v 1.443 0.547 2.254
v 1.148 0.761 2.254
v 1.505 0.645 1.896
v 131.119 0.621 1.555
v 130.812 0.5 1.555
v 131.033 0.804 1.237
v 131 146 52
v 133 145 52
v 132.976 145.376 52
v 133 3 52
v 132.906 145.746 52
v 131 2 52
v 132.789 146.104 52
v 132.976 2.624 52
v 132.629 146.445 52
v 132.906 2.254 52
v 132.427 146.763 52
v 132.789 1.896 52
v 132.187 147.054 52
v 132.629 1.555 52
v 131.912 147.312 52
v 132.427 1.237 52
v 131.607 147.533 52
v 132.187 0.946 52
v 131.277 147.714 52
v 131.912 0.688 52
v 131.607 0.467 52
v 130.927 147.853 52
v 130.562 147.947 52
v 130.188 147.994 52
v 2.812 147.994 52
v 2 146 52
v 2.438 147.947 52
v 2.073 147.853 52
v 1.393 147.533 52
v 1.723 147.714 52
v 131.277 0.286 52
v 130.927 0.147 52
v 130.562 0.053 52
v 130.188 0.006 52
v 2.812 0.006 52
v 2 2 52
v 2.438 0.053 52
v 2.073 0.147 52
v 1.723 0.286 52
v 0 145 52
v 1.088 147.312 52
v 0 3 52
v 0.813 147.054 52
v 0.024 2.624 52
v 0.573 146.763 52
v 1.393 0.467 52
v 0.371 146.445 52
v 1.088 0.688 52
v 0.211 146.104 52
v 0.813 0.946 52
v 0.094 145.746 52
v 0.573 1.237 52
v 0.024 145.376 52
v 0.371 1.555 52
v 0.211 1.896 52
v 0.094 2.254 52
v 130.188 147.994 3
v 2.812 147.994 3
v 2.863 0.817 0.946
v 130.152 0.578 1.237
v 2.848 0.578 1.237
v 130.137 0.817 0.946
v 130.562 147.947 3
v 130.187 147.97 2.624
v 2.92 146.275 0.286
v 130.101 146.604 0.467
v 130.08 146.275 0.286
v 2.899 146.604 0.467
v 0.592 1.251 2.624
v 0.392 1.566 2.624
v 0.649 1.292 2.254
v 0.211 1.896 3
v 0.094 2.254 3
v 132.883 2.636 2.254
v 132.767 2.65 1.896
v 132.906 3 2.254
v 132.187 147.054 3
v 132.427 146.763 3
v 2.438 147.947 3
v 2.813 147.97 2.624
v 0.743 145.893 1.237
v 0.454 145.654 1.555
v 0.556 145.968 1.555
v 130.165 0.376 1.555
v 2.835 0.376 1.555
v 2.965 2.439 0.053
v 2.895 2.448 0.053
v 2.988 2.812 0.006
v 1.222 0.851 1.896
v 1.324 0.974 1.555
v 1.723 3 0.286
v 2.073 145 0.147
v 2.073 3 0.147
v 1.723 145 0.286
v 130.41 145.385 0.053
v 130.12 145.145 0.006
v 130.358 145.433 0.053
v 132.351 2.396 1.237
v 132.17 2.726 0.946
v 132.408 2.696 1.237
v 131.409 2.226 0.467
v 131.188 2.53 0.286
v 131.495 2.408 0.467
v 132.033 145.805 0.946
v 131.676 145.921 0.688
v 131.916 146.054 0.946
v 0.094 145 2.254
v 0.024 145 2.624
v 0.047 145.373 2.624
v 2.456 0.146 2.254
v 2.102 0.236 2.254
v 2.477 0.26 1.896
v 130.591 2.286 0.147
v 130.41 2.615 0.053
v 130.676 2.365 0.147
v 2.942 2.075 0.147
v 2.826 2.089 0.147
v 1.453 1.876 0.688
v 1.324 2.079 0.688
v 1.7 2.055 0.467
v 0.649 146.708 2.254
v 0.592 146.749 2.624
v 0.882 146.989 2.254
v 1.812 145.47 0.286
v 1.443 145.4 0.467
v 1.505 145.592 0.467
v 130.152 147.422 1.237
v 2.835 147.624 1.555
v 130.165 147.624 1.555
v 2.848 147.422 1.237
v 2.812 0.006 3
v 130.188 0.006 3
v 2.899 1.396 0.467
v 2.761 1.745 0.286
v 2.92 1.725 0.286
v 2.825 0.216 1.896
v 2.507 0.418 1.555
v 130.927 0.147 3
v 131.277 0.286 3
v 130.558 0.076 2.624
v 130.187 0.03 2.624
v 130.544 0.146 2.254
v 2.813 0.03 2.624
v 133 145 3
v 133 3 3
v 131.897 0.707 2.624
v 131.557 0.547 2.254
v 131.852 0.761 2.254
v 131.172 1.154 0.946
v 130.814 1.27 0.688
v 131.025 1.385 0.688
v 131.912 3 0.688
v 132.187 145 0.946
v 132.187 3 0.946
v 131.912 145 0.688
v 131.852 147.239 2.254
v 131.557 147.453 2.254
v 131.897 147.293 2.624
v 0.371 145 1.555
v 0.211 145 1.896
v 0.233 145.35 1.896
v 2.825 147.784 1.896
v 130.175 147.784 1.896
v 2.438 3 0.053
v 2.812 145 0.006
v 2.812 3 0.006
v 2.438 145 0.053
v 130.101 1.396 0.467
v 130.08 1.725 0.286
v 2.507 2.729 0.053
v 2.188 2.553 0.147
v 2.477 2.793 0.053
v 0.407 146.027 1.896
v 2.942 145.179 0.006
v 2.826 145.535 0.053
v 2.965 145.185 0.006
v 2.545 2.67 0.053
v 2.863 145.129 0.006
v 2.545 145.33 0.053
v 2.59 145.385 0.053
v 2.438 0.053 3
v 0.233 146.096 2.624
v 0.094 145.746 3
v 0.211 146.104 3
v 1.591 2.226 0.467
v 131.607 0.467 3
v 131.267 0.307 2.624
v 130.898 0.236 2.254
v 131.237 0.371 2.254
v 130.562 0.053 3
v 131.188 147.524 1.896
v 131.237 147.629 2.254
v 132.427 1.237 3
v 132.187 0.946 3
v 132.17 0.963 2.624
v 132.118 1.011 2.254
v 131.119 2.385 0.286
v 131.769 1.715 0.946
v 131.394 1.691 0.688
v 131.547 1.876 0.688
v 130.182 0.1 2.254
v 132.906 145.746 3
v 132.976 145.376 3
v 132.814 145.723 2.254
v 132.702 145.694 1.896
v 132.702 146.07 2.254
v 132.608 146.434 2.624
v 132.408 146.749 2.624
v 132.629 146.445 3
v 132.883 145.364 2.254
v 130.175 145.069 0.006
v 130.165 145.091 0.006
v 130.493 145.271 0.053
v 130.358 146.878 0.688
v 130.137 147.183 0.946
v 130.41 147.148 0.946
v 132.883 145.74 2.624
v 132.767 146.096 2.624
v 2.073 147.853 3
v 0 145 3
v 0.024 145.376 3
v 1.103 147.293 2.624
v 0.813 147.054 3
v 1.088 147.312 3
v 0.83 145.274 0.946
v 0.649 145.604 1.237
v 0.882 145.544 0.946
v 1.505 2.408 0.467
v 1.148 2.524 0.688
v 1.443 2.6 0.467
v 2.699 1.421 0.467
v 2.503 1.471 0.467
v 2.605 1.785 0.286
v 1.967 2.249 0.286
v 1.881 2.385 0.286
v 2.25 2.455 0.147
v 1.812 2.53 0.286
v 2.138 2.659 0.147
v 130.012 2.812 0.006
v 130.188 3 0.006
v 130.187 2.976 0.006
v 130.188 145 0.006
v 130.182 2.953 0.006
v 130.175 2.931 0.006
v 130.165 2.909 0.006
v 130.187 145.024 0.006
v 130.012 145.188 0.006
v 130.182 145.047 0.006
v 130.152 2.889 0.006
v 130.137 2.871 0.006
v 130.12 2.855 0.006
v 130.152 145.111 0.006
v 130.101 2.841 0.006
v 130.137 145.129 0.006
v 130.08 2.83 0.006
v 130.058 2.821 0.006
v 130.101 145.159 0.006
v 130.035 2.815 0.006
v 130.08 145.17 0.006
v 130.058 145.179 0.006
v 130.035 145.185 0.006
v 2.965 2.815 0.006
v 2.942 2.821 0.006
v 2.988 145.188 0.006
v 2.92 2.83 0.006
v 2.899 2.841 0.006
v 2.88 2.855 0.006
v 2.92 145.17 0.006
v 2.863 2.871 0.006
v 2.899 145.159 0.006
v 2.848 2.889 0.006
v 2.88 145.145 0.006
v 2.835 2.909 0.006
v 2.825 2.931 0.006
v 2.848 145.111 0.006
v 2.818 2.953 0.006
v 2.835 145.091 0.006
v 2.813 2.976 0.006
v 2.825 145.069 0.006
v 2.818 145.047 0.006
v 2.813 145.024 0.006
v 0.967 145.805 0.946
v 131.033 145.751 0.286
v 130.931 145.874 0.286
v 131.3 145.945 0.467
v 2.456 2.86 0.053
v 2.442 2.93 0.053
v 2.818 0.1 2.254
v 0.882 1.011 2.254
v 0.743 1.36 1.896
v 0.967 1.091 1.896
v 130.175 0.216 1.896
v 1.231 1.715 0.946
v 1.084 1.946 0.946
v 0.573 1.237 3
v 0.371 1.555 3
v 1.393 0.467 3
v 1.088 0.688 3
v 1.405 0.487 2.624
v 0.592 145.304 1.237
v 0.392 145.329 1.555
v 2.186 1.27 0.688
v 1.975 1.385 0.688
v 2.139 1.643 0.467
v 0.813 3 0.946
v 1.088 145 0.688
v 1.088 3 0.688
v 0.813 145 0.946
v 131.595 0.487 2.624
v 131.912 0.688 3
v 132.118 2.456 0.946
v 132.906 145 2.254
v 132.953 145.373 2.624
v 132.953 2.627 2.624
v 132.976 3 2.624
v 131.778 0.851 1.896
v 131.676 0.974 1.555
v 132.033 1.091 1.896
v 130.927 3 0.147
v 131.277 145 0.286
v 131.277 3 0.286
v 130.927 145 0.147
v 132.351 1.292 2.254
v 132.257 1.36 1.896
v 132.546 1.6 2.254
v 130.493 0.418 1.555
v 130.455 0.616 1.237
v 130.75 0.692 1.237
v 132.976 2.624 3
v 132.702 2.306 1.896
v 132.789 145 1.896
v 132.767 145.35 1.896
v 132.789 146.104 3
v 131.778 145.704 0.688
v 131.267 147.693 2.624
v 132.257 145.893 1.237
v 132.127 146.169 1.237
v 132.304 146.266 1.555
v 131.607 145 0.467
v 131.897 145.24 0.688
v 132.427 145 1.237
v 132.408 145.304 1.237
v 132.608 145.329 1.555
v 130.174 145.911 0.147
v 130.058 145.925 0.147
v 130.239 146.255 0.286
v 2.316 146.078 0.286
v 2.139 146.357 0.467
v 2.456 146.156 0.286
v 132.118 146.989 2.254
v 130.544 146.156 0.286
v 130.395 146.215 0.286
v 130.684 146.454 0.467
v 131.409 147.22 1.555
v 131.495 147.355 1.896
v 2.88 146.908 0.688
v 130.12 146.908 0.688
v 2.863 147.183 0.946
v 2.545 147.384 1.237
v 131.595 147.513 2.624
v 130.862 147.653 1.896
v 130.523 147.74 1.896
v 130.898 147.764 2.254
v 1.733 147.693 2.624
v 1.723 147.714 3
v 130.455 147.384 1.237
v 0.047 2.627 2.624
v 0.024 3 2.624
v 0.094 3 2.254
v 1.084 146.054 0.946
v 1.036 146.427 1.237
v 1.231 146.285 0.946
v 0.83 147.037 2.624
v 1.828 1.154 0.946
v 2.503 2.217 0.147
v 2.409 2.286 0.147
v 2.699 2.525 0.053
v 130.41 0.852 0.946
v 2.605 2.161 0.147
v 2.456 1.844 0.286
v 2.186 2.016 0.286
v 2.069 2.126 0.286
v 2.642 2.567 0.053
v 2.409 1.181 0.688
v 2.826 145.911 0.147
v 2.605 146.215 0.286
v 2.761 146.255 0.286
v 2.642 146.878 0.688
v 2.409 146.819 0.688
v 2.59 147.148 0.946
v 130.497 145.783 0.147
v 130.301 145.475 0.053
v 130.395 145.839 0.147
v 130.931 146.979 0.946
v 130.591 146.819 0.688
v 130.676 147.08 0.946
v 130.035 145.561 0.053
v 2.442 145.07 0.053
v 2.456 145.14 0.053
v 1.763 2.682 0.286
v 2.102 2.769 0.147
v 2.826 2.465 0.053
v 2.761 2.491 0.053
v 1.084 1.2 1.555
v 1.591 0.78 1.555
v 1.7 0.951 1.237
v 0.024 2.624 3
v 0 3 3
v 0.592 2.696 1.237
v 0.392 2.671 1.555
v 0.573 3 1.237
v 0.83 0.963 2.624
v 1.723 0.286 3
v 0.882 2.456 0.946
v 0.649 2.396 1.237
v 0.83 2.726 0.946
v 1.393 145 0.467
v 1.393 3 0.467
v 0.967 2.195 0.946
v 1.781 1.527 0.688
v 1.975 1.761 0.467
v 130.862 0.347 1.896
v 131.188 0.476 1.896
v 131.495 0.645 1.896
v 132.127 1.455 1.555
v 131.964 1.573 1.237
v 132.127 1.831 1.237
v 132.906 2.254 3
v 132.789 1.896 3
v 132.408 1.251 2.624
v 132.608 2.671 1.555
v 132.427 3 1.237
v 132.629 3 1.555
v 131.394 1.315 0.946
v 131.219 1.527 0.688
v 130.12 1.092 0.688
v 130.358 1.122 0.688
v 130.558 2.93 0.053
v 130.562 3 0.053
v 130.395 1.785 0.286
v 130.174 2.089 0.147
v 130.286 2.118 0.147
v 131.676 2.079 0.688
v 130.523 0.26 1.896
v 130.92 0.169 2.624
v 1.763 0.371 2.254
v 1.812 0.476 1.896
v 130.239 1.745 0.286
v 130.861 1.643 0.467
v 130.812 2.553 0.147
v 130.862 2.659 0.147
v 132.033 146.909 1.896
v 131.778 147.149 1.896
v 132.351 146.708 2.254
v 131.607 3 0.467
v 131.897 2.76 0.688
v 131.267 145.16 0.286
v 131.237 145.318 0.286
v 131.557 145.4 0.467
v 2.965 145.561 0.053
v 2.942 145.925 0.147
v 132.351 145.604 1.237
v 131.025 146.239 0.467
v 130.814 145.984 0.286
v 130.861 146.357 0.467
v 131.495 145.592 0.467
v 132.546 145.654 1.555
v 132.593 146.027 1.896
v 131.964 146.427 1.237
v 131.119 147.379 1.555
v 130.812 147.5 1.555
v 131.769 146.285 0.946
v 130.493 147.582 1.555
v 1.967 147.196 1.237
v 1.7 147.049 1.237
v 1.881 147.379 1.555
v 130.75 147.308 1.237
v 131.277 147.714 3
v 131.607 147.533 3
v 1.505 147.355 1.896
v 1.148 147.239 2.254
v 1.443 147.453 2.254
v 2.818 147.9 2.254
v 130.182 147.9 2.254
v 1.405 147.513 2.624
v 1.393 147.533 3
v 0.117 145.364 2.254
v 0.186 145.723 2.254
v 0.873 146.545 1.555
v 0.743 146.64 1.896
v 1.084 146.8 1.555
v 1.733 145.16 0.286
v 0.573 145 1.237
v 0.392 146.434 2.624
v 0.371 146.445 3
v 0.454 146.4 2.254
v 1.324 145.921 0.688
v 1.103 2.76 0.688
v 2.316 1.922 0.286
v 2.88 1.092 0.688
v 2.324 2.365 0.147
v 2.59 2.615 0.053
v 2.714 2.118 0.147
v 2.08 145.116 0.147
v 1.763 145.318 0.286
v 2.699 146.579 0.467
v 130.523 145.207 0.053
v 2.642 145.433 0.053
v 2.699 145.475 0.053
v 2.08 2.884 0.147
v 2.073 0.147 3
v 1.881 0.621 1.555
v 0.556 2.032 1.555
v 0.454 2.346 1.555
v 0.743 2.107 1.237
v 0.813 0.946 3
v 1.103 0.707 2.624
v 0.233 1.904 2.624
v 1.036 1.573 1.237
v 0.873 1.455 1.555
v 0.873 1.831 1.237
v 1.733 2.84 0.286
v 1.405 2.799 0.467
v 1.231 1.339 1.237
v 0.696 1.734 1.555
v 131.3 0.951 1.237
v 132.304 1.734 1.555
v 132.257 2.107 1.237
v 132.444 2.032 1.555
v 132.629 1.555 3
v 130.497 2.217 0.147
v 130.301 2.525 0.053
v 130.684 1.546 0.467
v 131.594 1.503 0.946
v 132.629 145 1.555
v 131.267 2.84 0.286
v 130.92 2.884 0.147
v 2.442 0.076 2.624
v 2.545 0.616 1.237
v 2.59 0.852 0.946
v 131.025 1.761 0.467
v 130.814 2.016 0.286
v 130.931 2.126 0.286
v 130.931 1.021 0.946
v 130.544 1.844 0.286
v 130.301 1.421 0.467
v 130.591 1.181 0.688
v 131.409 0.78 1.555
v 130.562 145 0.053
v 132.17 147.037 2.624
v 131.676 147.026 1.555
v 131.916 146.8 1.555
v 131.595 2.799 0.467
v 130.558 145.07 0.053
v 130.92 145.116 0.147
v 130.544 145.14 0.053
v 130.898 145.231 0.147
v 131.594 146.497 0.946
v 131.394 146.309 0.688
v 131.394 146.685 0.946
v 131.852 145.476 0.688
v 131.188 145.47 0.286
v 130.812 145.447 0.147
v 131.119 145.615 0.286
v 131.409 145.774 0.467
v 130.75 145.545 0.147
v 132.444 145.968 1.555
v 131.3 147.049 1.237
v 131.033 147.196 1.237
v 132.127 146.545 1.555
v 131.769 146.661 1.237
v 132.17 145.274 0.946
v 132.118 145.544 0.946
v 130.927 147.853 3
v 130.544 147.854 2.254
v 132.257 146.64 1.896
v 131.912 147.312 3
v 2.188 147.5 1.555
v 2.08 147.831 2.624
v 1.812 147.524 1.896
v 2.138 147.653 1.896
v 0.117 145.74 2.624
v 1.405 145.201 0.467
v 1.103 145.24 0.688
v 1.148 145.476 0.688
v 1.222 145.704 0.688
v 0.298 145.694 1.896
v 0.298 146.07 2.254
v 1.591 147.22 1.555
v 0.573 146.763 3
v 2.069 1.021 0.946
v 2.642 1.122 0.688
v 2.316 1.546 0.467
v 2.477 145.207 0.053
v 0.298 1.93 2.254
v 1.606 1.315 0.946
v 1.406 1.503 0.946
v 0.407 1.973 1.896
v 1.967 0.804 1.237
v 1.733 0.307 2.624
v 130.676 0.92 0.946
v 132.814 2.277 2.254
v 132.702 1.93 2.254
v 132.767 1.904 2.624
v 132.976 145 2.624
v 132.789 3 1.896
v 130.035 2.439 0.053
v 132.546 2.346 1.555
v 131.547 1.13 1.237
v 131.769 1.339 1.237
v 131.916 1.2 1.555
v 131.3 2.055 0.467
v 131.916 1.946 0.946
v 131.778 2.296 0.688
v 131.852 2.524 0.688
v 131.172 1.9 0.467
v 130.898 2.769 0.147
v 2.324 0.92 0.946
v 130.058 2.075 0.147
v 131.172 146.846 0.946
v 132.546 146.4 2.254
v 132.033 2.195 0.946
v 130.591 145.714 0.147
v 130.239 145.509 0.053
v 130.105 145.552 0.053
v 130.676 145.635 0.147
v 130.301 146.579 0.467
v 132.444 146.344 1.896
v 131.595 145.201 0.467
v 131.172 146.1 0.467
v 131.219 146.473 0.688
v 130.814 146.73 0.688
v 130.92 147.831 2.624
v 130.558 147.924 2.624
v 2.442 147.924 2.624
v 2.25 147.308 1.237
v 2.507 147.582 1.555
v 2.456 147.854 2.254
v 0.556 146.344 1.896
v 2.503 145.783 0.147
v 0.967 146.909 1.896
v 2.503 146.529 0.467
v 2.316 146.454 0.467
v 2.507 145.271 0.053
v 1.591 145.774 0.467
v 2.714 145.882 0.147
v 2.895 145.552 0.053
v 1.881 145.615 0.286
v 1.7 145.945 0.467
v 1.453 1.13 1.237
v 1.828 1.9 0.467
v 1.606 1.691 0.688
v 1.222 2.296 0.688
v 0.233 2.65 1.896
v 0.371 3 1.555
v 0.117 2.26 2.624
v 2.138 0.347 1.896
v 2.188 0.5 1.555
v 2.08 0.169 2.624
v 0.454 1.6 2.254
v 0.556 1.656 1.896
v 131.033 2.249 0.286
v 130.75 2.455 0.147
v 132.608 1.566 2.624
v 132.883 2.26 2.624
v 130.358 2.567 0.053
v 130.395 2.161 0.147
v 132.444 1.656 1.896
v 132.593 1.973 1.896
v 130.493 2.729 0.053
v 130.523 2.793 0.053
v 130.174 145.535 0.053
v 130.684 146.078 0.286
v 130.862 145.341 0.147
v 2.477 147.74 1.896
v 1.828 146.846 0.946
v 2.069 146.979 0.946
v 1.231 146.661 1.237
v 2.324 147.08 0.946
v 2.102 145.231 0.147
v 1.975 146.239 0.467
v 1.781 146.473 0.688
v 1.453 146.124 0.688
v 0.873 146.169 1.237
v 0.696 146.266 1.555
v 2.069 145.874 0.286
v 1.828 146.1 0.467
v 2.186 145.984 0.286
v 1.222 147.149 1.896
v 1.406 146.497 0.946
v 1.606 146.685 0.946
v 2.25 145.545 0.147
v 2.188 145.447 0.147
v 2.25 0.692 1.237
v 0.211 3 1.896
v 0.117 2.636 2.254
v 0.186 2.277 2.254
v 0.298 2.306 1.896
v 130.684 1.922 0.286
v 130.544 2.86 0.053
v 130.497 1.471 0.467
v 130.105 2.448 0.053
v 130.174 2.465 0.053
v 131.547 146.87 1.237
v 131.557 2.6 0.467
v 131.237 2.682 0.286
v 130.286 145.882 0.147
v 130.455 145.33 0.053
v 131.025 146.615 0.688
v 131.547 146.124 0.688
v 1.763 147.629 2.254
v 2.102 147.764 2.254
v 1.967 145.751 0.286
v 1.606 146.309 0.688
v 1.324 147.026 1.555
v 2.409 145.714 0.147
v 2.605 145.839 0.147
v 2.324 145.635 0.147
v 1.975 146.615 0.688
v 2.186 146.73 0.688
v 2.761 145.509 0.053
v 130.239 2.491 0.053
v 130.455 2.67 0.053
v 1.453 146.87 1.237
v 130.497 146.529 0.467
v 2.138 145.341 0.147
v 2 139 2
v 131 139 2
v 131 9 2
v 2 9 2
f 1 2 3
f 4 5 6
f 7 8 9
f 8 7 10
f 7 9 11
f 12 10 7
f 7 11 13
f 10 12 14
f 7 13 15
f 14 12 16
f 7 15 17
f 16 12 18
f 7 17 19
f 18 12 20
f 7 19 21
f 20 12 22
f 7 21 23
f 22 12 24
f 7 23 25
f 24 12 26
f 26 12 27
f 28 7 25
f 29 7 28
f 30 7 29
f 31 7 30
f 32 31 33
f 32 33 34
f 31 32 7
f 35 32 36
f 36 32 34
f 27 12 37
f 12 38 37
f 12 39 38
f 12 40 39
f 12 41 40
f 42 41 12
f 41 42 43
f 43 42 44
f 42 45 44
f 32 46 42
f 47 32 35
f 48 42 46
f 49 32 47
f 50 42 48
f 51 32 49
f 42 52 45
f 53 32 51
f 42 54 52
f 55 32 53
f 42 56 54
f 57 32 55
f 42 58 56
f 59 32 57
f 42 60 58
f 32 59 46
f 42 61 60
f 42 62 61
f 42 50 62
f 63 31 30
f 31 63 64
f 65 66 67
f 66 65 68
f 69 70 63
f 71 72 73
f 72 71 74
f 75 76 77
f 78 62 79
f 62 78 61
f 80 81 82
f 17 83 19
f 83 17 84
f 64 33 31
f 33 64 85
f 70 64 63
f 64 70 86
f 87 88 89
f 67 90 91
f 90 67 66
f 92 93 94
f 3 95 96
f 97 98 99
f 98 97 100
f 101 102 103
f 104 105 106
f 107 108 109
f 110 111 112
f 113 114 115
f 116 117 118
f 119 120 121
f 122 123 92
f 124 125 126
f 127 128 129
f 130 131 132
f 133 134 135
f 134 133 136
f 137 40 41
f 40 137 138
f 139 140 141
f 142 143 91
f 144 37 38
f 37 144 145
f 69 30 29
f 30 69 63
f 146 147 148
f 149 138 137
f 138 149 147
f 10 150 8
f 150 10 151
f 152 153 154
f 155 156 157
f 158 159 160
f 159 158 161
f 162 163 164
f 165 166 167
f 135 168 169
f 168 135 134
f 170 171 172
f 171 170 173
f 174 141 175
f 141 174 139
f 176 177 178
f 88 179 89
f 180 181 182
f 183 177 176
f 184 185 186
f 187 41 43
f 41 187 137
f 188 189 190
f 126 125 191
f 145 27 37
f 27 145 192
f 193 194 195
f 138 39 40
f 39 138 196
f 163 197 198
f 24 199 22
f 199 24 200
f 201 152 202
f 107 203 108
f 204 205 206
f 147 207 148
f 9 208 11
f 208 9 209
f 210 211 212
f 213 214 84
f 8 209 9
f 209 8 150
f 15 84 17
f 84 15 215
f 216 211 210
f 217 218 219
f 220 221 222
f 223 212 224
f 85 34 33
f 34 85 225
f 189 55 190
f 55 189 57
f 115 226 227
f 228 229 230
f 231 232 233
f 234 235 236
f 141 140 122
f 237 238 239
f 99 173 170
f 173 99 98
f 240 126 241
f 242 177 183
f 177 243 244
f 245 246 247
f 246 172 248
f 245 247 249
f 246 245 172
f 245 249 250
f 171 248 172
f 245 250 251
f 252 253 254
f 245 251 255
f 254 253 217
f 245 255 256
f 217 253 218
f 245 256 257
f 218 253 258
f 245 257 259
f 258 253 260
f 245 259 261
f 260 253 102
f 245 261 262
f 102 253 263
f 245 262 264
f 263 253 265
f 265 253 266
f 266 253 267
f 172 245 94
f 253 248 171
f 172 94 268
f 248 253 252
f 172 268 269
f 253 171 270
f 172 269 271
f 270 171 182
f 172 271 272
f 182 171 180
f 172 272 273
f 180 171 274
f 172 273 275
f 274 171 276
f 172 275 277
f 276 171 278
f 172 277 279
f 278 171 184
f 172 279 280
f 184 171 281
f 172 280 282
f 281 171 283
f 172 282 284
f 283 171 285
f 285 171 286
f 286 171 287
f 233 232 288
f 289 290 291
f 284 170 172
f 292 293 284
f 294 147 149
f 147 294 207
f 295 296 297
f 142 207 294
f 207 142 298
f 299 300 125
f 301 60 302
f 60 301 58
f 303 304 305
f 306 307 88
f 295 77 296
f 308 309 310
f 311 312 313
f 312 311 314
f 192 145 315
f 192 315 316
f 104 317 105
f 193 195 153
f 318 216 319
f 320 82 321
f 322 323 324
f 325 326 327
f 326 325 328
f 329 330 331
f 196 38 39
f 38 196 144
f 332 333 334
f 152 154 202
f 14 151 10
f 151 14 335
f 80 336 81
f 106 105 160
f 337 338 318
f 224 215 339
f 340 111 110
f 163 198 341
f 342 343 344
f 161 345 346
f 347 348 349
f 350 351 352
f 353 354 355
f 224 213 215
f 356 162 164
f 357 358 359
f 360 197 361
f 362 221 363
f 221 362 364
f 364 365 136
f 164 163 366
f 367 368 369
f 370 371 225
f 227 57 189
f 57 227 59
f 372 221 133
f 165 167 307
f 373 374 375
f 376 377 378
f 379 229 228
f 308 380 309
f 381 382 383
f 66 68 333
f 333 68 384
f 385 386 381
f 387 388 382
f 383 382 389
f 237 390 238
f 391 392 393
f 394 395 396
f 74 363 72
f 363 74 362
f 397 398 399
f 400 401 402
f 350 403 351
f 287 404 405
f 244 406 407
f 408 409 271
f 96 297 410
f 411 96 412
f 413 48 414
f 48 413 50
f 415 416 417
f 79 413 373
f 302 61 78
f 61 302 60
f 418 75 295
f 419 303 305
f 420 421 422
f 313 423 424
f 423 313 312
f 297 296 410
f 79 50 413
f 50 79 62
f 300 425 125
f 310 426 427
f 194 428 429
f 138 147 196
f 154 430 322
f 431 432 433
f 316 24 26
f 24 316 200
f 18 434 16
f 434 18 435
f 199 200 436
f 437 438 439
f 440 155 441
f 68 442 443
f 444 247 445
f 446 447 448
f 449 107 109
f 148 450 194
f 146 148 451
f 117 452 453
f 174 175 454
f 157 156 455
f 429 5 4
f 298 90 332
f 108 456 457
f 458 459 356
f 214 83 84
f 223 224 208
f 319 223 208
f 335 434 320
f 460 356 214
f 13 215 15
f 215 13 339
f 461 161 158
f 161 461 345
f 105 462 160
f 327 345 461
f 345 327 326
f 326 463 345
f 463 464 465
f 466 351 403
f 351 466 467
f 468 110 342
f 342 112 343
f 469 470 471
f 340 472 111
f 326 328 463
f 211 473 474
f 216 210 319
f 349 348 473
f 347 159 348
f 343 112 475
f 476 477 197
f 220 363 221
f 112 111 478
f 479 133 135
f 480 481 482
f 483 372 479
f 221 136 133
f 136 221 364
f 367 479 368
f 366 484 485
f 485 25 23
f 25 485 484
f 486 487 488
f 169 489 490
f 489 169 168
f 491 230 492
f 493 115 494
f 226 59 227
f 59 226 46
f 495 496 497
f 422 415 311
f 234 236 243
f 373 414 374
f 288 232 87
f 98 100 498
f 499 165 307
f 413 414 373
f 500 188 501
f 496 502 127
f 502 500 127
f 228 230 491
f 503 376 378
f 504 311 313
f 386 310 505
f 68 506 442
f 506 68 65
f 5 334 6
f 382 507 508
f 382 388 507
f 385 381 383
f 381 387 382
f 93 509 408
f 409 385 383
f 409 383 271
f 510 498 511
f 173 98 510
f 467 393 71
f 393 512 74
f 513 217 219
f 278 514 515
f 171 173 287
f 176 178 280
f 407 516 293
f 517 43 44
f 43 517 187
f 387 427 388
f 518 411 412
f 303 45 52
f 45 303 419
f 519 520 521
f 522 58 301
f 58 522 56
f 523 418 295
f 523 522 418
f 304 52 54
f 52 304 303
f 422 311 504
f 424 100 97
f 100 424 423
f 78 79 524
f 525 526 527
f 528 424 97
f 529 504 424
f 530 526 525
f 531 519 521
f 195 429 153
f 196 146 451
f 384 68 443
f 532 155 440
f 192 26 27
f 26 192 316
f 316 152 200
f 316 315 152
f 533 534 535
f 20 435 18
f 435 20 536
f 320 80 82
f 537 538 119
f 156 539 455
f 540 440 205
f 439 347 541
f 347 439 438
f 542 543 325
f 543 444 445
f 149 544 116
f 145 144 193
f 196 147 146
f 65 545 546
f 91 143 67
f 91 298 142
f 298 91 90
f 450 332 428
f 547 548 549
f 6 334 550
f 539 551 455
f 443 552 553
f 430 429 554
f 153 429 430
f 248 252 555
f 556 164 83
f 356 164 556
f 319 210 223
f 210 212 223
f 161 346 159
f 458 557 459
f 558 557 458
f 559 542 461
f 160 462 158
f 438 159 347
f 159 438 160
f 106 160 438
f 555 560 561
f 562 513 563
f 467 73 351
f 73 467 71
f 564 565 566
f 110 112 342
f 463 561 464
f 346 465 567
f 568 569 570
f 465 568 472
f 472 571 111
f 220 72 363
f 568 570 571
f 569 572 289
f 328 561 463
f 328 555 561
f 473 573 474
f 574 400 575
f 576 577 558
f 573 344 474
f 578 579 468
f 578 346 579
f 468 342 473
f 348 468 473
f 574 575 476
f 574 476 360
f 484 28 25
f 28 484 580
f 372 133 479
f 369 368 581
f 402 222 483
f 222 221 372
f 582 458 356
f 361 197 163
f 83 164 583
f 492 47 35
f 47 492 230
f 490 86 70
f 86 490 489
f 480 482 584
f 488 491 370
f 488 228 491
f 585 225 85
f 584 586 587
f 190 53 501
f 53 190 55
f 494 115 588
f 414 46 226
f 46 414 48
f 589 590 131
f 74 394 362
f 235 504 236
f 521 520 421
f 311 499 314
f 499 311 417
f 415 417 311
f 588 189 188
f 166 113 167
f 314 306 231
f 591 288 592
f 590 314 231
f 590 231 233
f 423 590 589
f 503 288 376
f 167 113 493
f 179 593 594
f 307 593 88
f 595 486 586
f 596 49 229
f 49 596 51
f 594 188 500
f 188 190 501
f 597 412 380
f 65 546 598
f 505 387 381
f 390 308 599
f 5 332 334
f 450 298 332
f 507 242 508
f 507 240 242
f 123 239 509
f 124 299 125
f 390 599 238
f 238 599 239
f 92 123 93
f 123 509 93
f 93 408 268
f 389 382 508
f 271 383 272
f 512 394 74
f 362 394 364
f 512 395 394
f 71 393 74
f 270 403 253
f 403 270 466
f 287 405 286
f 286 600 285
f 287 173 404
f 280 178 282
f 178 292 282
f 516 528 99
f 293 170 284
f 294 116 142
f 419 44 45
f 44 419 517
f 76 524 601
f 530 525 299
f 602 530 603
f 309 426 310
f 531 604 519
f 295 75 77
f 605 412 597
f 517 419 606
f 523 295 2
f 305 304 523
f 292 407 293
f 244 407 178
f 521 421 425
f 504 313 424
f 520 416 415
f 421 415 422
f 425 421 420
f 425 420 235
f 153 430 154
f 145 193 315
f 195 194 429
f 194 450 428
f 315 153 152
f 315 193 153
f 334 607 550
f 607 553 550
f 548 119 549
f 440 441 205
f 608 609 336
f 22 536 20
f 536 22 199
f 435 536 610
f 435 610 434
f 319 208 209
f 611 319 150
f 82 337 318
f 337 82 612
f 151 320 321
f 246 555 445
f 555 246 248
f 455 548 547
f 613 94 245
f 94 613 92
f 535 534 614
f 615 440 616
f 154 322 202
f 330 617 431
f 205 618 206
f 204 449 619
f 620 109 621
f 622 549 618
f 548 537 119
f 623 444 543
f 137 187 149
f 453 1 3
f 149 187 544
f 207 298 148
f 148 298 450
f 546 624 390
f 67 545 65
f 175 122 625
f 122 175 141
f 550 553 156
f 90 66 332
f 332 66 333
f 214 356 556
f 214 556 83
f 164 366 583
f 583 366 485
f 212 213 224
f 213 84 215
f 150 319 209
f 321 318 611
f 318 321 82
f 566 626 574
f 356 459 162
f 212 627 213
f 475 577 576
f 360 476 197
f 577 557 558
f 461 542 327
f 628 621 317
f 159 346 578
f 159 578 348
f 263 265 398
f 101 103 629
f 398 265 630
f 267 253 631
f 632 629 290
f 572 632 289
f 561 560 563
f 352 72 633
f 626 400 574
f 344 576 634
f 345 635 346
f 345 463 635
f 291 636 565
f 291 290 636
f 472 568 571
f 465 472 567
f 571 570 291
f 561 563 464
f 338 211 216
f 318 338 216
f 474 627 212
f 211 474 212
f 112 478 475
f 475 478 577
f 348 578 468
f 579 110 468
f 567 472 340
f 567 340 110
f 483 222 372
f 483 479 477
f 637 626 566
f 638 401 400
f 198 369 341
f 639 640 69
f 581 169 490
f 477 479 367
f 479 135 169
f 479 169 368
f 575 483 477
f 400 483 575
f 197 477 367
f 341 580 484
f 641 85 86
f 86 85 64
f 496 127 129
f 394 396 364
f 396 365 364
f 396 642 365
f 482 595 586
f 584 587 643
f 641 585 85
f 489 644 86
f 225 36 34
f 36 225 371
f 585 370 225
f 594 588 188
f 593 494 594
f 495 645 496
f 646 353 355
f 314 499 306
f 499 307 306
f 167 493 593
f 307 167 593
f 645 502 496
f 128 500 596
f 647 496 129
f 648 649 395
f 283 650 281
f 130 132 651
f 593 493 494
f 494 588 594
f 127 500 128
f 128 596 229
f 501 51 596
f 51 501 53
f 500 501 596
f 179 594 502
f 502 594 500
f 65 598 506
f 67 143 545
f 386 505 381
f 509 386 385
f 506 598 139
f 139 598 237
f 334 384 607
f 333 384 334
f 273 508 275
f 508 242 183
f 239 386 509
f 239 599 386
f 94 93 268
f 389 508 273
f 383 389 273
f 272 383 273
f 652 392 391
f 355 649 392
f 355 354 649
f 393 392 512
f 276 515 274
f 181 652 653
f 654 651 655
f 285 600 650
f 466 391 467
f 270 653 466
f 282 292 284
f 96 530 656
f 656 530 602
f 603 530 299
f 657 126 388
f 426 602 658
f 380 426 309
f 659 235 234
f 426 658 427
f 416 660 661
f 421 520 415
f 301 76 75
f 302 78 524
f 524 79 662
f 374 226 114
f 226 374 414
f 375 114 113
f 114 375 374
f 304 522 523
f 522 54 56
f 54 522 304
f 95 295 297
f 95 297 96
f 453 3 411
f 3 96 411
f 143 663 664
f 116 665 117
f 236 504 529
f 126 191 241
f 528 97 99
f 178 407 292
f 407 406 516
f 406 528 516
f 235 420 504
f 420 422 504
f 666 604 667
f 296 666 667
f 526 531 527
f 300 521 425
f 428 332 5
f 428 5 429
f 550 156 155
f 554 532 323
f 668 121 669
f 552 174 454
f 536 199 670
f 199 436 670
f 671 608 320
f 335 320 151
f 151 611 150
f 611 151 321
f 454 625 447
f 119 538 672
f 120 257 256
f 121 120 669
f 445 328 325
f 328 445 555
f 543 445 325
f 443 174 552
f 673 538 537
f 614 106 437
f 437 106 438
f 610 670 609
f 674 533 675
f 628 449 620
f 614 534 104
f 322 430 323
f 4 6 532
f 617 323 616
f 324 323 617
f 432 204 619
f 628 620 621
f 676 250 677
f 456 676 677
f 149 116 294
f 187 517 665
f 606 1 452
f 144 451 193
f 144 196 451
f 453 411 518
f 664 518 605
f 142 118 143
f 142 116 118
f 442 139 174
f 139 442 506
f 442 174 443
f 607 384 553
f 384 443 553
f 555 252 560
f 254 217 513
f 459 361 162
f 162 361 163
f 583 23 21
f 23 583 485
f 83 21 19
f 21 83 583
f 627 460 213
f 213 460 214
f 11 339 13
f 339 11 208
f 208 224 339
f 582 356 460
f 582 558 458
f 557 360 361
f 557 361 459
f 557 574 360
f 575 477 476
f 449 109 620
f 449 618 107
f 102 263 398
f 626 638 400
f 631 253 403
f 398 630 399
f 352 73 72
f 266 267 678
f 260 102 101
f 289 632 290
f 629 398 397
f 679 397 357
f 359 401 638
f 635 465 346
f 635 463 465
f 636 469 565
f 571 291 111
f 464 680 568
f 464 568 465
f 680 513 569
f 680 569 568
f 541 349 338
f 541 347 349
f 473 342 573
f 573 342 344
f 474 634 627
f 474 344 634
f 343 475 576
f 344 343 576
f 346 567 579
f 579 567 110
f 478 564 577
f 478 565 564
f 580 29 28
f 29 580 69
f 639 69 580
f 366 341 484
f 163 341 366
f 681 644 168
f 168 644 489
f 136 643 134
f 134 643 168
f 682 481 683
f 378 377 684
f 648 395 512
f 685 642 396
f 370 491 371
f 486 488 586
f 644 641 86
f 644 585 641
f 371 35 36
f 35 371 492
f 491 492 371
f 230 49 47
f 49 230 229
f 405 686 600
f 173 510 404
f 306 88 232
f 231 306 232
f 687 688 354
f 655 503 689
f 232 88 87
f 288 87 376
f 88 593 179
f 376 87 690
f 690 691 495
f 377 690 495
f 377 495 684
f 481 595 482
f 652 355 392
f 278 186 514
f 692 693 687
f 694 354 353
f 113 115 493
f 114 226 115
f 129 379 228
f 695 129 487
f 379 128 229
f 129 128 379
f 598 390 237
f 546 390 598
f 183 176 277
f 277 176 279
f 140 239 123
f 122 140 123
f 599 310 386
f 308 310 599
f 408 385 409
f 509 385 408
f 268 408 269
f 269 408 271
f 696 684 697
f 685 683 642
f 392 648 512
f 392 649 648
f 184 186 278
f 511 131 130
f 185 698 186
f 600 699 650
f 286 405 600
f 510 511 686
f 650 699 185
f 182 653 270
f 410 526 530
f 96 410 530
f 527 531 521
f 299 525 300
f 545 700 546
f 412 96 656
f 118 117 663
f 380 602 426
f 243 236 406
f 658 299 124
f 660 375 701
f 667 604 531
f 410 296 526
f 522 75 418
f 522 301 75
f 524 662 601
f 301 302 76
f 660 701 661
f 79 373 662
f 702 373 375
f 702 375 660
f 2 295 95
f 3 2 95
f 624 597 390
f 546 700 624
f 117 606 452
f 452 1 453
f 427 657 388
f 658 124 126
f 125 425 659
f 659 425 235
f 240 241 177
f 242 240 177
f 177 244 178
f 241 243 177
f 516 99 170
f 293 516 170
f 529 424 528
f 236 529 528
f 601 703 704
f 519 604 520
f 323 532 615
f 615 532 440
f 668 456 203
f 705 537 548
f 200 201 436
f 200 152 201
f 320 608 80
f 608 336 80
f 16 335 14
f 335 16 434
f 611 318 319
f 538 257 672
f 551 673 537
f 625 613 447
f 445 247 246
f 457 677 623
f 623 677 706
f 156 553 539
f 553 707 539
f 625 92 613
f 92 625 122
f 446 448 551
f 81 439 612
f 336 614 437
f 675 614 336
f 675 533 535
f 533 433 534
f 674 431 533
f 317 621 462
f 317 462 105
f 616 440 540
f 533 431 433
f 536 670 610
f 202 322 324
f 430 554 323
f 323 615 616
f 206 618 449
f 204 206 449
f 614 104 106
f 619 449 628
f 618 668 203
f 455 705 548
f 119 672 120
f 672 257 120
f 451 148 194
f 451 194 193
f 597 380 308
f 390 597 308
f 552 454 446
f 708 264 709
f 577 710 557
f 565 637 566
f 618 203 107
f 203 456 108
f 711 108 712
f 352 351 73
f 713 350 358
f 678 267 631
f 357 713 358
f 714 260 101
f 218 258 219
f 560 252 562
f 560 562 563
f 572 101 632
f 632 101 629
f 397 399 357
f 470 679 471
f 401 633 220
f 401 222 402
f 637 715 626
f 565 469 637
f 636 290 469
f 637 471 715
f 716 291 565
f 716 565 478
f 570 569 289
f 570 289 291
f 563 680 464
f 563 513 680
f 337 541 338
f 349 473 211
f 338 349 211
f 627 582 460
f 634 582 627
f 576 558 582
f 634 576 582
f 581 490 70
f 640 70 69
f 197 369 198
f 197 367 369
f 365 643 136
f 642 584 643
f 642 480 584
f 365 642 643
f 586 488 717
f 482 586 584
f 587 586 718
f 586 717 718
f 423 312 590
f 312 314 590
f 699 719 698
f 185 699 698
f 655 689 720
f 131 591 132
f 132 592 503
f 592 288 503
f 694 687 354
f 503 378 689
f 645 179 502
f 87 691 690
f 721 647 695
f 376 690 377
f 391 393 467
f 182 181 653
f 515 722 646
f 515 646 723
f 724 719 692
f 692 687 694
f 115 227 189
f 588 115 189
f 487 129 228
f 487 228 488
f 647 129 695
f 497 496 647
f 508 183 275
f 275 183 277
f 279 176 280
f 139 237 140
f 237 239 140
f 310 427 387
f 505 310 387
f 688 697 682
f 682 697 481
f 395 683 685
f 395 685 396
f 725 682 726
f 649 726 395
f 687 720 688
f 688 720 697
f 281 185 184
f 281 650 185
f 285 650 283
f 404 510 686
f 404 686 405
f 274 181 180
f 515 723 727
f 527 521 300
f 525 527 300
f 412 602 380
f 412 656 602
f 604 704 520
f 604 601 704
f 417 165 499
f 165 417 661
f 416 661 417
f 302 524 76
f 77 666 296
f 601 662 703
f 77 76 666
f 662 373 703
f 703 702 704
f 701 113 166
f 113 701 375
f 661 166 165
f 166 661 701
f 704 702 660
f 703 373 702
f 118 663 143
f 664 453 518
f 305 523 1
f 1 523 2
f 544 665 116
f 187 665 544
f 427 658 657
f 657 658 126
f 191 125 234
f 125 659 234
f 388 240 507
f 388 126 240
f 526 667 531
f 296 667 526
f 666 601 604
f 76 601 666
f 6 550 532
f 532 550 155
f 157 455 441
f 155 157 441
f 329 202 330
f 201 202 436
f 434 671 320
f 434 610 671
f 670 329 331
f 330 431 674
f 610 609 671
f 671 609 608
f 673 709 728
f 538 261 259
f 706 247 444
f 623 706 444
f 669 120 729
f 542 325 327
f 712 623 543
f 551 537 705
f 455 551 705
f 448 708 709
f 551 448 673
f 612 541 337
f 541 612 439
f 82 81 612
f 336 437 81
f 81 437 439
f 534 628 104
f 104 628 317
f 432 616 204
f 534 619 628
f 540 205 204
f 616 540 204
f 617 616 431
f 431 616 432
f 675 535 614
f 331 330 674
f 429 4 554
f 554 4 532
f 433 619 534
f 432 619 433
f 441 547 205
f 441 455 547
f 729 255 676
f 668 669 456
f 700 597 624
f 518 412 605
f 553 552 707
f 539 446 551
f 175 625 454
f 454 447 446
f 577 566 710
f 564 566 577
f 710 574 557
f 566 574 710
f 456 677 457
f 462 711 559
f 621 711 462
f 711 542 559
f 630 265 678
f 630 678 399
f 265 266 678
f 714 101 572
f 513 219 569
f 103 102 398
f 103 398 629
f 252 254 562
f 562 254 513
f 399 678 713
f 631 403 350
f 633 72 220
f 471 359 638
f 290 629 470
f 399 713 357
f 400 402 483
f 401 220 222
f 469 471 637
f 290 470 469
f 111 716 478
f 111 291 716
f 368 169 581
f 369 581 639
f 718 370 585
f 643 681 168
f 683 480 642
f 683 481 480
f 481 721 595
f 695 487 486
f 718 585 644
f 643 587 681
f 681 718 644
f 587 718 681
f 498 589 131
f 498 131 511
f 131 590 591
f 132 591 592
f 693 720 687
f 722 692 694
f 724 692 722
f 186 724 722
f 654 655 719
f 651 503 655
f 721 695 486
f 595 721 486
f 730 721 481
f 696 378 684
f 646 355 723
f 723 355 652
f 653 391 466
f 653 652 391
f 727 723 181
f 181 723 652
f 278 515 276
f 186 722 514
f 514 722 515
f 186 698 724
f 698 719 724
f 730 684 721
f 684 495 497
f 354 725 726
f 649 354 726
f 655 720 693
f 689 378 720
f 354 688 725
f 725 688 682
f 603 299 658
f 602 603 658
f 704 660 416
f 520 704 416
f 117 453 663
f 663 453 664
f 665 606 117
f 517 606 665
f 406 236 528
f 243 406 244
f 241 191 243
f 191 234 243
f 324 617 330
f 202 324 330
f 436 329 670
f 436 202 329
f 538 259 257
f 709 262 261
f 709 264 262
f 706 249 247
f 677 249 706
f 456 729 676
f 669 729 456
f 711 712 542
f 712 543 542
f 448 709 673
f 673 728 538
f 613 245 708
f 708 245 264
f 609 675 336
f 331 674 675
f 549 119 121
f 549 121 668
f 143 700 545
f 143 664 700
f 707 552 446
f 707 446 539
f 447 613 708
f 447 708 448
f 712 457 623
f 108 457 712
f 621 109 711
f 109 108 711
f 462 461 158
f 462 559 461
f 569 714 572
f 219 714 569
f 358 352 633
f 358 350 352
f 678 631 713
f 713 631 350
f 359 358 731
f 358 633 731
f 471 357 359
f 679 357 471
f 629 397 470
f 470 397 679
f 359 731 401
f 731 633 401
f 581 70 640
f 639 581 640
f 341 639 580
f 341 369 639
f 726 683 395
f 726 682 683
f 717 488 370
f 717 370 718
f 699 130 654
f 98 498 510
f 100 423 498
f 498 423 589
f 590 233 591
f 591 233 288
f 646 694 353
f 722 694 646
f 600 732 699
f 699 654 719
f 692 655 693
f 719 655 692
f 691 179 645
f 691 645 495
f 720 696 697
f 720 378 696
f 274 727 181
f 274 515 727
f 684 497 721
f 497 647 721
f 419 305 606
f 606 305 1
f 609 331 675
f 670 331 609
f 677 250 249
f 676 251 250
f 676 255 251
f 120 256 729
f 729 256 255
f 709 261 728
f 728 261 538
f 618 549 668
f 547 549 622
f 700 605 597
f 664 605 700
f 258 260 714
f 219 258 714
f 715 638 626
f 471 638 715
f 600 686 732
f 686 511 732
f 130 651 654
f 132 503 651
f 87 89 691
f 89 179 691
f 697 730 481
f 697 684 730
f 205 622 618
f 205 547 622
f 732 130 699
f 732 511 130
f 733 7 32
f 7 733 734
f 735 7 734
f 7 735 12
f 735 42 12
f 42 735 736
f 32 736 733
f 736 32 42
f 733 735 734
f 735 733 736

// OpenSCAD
// file: ../../lib/rounded_square.scad
$bleed = 1;
$rounding = 3;

module rounded_square(size) {
  inner_size = [
    size[0] - $rounding * 2,
    size[1] - $rounding * 2,
  ];

  minkowski() {
    translate([$rounding, $rounding, 0]) {
      square(inner_size);
    }
    circle($rounding);
  }
}
// file: ../../lib/layout.scad
$wall_thickness = 2;

function wall_offset(count = 1, i = 0) = (i + 1) * $wall_thickness;

function total_wall_size(count = 1) = (count + 1) * $wall_thickness;

function usable_size(size, count = 1) = size - total_wall_size(count);

function item_size(size, count = 1, i = 0) = usable_size(size, count) / count;

function item_offset(size, count = 1, i = 0) = wall_offset(count, i) + item_size(size, count, i) * i;

module spread_width(width) {
  echo("children: ", $children);
  for(i=[0 : $children - 1]) {
    offset = item_offset(width, $children, i);
    translate([offset, 0, 0]) {
      children(i);
    }
  }
}

module spread_length(length) {
  for(i=[0 : $children - 1]) {
    offset = item_offset(length, $children, i);
    translate([0, offset, 0]) {
      children(i);
    }
  }
}
// file: ../../lib/rounded_cube.scad
include <./rounded_square.scad>

$bleed = 1;
$rounding = 3;

// Render a rounded cube
// flat_top: do not round the top edges
// flat_bottom: do not round the bottom edges
// flat: equals flat_top && flat_bottom
// 
// Limitations:
// requires height > $rounding * 2
// flat_top || flat_bottom requires height > $rounding
// flat_top && flat_bottom requires height > $bleed
module rounded_cube(
  size, 
  flat=false, 
  flat_top=false, 
  flat_bottom=false,
  side_rounding=-1
) {
  _flat = flat || (flat_top && flat_bottom);
  _flat_top = flat_top || flat;
  _flat_bottom = flat_bottom || flat;
  _rounding = min($rounding, size[2] / 2);
  _side_rounding = side_rounding > -1 ? side_rounding: $rounding;

  assert(_side_rounding >= $rounding, "side rounding cannot be less than rounding");

  top_height = _flat_top ? 0: _rounding;
  bottom_height = _flat_bottom ? 0: _rounding;

  cube_size = [
    size[0] - _rounding * 2,
    size[1] - _rounding * 2,
    size[2] - (top_height + bottom_height)
  ];

  if (_flat_top && _flat_bottom) {
     linear_extrude(cube_size[2]) {
       rounded_square([size[0], size[1]]);
     }
  } else {
    minkowski() {
      translate([_rounding, _rounding, bottom_height]) {
        if (_side_rounding != _rounding) {
          linear_extrude(cube_size[2]) {
            rounded_square([cube_size[0], cube_size[1]], $rounding=_side_rounding);
          }
        } else {
          cube(cube_size);
        }
      }

      if (_flat_top) {
        difference() {
          sphere(_rounding);
          cylinder(_rounding, _rounding, _rounding);
        }
      } else if (_flat_bottom) {
        difference() {
          sphere(_rounding);
          translate ([0, 0, -_rounding]) {
            cylinder(_rounding, _rounding, _rounding);
          }
        }
      } else {
        sphere(_rounding);
      }
    }
  }
}
// main file
echo(version=version());

include <../../lib/rounded_cube.scad>
include <../../lib/layout.scad>

$fn = 50;
$wall_thickness = 2;
$bleed = 0.01;
$padding = 0.5;
$cutout_fraction = 0.6;

module index_card_tray(
  cards_size, 
  count=1, 
  roof_height
) {
  tray_size = [
    pad(cards_size[0]),
    pad(cards_size[1]),
    cards_size[2] + $bleed,
  ];

  floor_height = roof_height 
    ? roof_height - tray_size[2] + $bleed
    : $wall_thickness;

  translate([0, 0, floor_height]) {
    rounded_cube(tray_size, flat=true, $rounding=1);
  }
}

card_tray_size = [
  129,
  144,
  50
];

box_size = [
  card_tray_size[0] + $wall_thickness * 2,
  card_tray_size[1] + $wall_thickness * 2,
  card_tray_size[2] + $wall_thickness,
];

incline_width = 7;

difference() {
  rounded_cube(box_size, flat_top=true);

  translate([$wall_thickness, $wall_thickness, $wall_thickness]) {
    hull() {
      translate([0, incline_width, 0]) {
        cube([card_tray_size[0], card_tray_size[1] - incline_width * 2, $bleed]);
      }

      translate([0, 0, card_tray_size[2]]) {
        cube([card_tray_size[0], card_tray_size[1], $bleed]);
      }
    }
  }
}
